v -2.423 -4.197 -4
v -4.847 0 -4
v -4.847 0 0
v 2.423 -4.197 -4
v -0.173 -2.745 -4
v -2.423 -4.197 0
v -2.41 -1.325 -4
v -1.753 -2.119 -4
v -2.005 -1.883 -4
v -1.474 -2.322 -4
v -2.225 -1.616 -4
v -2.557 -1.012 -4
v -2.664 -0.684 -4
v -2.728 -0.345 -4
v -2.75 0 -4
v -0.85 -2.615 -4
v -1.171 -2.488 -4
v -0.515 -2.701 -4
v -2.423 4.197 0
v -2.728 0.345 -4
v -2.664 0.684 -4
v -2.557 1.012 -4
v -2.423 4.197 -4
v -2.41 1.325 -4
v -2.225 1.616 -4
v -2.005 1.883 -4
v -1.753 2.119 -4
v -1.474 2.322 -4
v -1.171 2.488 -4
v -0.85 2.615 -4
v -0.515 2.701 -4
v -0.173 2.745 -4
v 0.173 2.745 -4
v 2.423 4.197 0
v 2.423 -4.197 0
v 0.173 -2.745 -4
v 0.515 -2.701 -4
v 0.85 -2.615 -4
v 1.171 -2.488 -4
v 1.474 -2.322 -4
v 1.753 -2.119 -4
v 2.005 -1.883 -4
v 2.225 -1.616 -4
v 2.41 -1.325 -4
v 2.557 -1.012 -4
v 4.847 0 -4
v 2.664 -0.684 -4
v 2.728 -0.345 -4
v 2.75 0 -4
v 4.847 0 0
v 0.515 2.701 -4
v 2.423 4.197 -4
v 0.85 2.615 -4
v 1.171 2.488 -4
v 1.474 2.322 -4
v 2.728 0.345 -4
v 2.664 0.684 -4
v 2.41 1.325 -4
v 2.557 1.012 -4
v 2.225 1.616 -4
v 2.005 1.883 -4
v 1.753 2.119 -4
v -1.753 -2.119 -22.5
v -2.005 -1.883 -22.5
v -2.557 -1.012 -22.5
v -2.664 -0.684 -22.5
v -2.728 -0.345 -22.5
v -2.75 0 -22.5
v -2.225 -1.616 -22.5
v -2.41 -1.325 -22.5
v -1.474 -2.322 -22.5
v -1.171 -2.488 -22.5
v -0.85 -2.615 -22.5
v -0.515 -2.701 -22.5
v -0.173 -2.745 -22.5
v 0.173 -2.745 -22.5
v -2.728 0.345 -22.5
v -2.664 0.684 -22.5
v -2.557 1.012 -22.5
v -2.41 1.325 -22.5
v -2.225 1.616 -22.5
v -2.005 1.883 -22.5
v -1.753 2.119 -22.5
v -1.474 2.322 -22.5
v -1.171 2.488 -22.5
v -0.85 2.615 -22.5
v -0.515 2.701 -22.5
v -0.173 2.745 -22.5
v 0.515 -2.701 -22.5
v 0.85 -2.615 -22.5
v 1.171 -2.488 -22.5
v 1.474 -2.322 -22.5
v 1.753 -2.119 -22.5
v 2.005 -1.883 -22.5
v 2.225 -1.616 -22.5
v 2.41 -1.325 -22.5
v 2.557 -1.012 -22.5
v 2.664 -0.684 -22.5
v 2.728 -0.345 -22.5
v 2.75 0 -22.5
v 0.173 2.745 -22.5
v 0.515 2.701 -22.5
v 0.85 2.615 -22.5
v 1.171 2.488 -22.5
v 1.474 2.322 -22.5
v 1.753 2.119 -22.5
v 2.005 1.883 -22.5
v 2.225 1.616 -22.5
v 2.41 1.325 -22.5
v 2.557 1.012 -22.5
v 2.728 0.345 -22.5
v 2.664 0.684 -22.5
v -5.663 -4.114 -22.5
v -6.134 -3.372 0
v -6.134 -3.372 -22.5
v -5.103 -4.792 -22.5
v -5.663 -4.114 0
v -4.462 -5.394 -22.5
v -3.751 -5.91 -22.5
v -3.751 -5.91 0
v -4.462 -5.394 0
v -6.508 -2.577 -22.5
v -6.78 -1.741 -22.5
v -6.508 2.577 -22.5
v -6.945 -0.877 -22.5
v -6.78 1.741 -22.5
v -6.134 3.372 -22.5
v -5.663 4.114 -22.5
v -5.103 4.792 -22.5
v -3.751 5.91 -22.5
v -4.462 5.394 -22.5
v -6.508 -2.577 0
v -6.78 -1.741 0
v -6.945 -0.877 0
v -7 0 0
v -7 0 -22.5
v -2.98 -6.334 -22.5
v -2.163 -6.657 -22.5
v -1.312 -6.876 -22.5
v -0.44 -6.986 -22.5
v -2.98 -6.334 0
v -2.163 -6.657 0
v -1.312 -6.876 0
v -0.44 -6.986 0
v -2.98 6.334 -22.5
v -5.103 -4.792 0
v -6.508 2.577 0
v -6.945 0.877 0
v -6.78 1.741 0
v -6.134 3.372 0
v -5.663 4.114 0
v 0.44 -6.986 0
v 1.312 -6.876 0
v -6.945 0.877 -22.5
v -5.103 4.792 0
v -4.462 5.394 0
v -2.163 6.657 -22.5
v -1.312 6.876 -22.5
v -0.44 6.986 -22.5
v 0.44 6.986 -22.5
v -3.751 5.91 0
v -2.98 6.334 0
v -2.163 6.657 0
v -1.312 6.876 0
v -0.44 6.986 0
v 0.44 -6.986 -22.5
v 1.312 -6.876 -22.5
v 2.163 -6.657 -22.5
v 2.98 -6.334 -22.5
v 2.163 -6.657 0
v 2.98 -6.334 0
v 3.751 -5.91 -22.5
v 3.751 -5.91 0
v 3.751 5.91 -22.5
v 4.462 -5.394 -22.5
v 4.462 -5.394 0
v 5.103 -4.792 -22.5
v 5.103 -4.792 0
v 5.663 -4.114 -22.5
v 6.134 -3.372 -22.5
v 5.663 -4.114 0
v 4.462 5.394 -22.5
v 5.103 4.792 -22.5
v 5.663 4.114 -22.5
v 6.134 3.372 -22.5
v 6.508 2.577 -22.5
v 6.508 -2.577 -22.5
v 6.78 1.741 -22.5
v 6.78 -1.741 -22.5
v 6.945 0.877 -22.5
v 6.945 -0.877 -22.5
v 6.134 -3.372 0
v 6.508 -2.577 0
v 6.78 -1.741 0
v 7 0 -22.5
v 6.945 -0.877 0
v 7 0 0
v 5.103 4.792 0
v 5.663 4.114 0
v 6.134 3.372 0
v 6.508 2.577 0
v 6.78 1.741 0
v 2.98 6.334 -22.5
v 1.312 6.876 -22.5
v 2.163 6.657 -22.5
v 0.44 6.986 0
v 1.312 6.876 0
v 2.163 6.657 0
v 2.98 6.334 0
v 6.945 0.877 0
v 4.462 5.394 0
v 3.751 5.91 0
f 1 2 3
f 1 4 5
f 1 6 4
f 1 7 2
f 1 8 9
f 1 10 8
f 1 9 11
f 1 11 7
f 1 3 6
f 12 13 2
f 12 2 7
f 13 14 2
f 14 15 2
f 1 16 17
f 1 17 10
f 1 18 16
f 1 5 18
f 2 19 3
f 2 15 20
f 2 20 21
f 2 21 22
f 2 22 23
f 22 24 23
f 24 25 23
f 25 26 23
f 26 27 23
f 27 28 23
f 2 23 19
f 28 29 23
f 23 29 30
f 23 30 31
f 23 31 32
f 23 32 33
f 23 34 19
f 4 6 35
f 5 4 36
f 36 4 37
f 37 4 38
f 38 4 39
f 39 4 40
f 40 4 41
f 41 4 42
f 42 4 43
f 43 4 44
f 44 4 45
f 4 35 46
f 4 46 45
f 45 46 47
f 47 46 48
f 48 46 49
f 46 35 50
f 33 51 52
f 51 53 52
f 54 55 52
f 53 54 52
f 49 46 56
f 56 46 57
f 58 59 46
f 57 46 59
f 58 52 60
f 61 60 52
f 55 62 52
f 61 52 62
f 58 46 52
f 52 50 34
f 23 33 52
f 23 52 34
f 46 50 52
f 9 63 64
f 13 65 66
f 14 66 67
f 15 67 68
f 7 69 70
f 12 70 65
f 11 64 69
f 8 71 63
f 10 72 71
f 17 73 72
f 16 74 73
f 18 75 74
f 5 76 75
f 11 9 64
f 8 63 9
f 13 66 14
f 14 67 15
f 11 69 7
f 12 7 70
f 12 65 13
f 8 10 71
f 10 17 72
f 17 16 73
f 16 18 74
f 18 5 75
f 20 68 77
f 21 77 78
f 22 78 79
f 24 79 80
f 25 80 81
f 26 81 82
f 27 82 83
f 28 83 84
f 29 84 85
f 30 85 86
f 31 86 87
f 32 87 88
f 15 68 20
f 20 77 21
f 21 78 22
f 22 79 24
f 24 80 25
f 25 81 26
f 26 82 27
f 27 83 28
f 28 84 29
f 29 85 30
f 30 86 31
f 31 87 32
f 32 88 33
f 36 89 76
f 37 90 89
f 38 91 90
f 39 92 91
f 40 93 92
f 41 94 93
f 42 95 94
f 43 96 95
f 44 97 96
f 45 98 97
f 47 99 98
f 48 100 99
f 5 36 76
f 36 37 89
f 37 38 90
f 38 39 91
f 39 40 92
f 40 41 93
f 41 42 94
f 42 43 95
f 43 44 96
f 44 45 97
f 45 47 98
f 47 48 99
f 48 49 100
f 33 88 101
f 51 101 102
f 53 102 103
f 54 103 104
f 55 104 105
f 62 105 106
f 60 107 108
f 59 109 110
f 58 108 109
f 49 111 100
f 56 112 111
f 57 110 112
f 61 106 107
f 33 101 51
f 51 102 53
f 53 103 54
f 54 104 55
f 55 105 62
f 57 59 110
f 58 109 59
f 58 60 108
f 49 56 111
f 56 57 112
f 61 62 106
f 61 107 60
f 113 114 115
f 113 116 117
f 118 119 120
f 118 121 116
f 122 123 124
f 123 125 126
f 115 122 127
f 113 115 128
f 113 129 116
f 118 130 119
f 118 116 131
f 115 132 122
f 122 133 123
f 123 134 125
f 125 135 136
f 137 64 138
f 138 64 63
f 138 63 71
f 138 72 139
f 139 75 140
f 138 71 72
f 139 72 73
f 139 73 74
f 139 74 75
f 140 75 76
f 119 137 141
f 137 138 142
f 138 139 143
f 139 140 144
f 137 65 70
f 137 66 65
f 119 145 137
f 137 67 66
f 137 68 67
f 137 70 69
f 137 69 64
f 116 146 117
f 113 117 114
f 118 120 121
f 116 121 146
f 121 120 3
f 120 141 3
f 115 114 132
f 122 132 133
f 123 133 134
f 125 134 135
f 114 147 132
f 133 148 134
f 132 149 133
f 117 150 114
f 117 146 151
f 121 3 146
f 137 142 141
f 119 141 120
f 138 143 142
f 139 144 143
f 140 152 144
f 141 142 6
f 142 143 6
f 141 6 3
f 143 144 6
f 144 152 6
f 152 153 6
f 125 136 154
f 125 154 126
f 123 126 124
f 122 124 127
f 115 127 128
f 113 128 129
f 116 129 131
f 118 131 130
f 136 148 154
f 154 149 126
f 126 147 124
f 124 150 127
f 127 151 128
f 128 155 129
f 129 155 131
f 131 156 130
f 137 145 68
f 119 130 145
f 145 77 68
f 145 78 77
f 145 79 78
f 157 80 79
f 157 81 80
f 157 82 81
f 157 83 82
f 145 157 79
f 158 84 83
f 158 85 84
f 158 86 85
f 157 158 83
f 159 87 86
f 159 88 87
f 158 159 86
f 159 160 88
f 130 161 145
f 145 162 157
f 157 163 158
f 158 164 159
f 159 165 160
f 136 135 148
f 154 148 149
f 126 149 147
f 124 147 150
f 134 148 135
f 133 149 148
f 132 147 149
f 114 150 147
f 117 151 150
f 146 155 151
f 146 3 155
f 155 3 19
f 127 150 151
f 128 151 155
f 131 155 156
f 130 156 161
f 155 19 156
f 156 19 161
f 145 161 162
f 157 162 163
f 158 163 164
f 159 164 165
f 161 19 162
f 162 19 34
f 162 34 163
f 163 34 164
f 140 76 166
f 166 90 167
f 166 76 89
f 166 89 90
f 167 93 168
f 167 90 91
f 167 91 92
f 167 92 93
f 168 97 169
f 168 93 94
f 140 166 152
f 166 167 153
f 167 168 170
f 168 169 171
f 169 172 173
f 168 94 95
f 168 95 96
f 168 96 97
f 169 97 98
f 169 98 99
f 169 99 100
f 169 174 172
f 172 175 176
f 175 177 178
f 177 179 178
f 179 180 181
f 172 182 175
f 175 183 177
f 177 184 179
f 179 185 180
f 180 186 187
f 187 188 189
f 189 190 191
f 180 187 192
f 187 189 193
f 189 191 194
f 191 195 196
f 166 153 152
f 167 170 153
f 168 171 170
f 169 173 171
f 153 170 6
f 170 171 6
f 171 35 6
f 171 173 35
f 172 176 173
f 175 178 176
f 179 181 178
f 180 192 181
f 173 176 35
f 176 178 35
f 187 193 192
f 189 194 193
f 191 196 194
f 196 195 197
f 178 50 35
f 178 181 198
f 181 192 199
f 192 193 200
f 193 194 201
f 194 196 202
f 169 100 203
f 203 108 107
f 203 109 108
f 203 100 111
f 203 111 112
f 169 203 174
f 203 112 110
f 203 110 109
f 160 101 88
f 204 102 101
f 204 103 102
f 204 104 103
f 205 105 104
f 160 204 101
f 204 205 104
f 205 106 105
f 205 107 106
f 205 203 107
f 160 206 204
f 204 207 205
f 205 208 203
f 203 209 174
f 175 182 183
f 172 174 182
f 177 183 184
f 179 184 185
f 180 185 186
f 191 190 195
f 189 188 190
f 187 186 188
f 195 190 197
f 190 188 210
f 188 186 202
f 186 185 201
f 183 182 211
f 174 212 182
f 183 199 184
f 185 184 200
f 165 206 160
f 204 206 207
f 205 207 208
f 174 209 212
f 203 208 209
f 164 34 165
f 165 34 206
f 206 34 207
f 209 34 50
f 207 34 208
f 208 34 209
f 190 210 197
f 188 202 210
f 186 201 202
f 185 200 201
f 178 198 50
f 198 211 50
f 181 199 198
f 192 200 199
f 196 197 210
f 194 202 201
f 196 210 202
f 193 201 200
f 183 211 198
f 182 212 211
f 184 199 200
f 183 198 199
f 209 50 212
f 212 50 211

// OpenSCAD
$fn = 50;


difference() {
	union() {
		translate(v = [0, 0, -22.5000000000]) {
			cylinder(h = 22.5000000000, r = 7.0000000000);
		}
	}
	union() {
		translate(v = [0, 0, 0]) {
			rotate(a = [0, 0, 0]) {
				difference() {
					union() {
						translate(v = [0, 0, -4]) {
							linear_extrude(height = 4) {
								polygon(points = [[4.8468000000, 0.0000000000], [2.4234000000, 4.1974519271], [-2.4234000000, 4.1974519271], [-4.8468000000, 0.0000000000], [-2.4234000000, -4.1974519271], [2.4234000000, -4.1974519271]]);
							}
						}
					}
					union();
				}
			}
		}
		#translate(v = [0, 0, -100.0000000000]) {
			cylinder(h = 200, r = 2.7500000000);
		}
	}
}
